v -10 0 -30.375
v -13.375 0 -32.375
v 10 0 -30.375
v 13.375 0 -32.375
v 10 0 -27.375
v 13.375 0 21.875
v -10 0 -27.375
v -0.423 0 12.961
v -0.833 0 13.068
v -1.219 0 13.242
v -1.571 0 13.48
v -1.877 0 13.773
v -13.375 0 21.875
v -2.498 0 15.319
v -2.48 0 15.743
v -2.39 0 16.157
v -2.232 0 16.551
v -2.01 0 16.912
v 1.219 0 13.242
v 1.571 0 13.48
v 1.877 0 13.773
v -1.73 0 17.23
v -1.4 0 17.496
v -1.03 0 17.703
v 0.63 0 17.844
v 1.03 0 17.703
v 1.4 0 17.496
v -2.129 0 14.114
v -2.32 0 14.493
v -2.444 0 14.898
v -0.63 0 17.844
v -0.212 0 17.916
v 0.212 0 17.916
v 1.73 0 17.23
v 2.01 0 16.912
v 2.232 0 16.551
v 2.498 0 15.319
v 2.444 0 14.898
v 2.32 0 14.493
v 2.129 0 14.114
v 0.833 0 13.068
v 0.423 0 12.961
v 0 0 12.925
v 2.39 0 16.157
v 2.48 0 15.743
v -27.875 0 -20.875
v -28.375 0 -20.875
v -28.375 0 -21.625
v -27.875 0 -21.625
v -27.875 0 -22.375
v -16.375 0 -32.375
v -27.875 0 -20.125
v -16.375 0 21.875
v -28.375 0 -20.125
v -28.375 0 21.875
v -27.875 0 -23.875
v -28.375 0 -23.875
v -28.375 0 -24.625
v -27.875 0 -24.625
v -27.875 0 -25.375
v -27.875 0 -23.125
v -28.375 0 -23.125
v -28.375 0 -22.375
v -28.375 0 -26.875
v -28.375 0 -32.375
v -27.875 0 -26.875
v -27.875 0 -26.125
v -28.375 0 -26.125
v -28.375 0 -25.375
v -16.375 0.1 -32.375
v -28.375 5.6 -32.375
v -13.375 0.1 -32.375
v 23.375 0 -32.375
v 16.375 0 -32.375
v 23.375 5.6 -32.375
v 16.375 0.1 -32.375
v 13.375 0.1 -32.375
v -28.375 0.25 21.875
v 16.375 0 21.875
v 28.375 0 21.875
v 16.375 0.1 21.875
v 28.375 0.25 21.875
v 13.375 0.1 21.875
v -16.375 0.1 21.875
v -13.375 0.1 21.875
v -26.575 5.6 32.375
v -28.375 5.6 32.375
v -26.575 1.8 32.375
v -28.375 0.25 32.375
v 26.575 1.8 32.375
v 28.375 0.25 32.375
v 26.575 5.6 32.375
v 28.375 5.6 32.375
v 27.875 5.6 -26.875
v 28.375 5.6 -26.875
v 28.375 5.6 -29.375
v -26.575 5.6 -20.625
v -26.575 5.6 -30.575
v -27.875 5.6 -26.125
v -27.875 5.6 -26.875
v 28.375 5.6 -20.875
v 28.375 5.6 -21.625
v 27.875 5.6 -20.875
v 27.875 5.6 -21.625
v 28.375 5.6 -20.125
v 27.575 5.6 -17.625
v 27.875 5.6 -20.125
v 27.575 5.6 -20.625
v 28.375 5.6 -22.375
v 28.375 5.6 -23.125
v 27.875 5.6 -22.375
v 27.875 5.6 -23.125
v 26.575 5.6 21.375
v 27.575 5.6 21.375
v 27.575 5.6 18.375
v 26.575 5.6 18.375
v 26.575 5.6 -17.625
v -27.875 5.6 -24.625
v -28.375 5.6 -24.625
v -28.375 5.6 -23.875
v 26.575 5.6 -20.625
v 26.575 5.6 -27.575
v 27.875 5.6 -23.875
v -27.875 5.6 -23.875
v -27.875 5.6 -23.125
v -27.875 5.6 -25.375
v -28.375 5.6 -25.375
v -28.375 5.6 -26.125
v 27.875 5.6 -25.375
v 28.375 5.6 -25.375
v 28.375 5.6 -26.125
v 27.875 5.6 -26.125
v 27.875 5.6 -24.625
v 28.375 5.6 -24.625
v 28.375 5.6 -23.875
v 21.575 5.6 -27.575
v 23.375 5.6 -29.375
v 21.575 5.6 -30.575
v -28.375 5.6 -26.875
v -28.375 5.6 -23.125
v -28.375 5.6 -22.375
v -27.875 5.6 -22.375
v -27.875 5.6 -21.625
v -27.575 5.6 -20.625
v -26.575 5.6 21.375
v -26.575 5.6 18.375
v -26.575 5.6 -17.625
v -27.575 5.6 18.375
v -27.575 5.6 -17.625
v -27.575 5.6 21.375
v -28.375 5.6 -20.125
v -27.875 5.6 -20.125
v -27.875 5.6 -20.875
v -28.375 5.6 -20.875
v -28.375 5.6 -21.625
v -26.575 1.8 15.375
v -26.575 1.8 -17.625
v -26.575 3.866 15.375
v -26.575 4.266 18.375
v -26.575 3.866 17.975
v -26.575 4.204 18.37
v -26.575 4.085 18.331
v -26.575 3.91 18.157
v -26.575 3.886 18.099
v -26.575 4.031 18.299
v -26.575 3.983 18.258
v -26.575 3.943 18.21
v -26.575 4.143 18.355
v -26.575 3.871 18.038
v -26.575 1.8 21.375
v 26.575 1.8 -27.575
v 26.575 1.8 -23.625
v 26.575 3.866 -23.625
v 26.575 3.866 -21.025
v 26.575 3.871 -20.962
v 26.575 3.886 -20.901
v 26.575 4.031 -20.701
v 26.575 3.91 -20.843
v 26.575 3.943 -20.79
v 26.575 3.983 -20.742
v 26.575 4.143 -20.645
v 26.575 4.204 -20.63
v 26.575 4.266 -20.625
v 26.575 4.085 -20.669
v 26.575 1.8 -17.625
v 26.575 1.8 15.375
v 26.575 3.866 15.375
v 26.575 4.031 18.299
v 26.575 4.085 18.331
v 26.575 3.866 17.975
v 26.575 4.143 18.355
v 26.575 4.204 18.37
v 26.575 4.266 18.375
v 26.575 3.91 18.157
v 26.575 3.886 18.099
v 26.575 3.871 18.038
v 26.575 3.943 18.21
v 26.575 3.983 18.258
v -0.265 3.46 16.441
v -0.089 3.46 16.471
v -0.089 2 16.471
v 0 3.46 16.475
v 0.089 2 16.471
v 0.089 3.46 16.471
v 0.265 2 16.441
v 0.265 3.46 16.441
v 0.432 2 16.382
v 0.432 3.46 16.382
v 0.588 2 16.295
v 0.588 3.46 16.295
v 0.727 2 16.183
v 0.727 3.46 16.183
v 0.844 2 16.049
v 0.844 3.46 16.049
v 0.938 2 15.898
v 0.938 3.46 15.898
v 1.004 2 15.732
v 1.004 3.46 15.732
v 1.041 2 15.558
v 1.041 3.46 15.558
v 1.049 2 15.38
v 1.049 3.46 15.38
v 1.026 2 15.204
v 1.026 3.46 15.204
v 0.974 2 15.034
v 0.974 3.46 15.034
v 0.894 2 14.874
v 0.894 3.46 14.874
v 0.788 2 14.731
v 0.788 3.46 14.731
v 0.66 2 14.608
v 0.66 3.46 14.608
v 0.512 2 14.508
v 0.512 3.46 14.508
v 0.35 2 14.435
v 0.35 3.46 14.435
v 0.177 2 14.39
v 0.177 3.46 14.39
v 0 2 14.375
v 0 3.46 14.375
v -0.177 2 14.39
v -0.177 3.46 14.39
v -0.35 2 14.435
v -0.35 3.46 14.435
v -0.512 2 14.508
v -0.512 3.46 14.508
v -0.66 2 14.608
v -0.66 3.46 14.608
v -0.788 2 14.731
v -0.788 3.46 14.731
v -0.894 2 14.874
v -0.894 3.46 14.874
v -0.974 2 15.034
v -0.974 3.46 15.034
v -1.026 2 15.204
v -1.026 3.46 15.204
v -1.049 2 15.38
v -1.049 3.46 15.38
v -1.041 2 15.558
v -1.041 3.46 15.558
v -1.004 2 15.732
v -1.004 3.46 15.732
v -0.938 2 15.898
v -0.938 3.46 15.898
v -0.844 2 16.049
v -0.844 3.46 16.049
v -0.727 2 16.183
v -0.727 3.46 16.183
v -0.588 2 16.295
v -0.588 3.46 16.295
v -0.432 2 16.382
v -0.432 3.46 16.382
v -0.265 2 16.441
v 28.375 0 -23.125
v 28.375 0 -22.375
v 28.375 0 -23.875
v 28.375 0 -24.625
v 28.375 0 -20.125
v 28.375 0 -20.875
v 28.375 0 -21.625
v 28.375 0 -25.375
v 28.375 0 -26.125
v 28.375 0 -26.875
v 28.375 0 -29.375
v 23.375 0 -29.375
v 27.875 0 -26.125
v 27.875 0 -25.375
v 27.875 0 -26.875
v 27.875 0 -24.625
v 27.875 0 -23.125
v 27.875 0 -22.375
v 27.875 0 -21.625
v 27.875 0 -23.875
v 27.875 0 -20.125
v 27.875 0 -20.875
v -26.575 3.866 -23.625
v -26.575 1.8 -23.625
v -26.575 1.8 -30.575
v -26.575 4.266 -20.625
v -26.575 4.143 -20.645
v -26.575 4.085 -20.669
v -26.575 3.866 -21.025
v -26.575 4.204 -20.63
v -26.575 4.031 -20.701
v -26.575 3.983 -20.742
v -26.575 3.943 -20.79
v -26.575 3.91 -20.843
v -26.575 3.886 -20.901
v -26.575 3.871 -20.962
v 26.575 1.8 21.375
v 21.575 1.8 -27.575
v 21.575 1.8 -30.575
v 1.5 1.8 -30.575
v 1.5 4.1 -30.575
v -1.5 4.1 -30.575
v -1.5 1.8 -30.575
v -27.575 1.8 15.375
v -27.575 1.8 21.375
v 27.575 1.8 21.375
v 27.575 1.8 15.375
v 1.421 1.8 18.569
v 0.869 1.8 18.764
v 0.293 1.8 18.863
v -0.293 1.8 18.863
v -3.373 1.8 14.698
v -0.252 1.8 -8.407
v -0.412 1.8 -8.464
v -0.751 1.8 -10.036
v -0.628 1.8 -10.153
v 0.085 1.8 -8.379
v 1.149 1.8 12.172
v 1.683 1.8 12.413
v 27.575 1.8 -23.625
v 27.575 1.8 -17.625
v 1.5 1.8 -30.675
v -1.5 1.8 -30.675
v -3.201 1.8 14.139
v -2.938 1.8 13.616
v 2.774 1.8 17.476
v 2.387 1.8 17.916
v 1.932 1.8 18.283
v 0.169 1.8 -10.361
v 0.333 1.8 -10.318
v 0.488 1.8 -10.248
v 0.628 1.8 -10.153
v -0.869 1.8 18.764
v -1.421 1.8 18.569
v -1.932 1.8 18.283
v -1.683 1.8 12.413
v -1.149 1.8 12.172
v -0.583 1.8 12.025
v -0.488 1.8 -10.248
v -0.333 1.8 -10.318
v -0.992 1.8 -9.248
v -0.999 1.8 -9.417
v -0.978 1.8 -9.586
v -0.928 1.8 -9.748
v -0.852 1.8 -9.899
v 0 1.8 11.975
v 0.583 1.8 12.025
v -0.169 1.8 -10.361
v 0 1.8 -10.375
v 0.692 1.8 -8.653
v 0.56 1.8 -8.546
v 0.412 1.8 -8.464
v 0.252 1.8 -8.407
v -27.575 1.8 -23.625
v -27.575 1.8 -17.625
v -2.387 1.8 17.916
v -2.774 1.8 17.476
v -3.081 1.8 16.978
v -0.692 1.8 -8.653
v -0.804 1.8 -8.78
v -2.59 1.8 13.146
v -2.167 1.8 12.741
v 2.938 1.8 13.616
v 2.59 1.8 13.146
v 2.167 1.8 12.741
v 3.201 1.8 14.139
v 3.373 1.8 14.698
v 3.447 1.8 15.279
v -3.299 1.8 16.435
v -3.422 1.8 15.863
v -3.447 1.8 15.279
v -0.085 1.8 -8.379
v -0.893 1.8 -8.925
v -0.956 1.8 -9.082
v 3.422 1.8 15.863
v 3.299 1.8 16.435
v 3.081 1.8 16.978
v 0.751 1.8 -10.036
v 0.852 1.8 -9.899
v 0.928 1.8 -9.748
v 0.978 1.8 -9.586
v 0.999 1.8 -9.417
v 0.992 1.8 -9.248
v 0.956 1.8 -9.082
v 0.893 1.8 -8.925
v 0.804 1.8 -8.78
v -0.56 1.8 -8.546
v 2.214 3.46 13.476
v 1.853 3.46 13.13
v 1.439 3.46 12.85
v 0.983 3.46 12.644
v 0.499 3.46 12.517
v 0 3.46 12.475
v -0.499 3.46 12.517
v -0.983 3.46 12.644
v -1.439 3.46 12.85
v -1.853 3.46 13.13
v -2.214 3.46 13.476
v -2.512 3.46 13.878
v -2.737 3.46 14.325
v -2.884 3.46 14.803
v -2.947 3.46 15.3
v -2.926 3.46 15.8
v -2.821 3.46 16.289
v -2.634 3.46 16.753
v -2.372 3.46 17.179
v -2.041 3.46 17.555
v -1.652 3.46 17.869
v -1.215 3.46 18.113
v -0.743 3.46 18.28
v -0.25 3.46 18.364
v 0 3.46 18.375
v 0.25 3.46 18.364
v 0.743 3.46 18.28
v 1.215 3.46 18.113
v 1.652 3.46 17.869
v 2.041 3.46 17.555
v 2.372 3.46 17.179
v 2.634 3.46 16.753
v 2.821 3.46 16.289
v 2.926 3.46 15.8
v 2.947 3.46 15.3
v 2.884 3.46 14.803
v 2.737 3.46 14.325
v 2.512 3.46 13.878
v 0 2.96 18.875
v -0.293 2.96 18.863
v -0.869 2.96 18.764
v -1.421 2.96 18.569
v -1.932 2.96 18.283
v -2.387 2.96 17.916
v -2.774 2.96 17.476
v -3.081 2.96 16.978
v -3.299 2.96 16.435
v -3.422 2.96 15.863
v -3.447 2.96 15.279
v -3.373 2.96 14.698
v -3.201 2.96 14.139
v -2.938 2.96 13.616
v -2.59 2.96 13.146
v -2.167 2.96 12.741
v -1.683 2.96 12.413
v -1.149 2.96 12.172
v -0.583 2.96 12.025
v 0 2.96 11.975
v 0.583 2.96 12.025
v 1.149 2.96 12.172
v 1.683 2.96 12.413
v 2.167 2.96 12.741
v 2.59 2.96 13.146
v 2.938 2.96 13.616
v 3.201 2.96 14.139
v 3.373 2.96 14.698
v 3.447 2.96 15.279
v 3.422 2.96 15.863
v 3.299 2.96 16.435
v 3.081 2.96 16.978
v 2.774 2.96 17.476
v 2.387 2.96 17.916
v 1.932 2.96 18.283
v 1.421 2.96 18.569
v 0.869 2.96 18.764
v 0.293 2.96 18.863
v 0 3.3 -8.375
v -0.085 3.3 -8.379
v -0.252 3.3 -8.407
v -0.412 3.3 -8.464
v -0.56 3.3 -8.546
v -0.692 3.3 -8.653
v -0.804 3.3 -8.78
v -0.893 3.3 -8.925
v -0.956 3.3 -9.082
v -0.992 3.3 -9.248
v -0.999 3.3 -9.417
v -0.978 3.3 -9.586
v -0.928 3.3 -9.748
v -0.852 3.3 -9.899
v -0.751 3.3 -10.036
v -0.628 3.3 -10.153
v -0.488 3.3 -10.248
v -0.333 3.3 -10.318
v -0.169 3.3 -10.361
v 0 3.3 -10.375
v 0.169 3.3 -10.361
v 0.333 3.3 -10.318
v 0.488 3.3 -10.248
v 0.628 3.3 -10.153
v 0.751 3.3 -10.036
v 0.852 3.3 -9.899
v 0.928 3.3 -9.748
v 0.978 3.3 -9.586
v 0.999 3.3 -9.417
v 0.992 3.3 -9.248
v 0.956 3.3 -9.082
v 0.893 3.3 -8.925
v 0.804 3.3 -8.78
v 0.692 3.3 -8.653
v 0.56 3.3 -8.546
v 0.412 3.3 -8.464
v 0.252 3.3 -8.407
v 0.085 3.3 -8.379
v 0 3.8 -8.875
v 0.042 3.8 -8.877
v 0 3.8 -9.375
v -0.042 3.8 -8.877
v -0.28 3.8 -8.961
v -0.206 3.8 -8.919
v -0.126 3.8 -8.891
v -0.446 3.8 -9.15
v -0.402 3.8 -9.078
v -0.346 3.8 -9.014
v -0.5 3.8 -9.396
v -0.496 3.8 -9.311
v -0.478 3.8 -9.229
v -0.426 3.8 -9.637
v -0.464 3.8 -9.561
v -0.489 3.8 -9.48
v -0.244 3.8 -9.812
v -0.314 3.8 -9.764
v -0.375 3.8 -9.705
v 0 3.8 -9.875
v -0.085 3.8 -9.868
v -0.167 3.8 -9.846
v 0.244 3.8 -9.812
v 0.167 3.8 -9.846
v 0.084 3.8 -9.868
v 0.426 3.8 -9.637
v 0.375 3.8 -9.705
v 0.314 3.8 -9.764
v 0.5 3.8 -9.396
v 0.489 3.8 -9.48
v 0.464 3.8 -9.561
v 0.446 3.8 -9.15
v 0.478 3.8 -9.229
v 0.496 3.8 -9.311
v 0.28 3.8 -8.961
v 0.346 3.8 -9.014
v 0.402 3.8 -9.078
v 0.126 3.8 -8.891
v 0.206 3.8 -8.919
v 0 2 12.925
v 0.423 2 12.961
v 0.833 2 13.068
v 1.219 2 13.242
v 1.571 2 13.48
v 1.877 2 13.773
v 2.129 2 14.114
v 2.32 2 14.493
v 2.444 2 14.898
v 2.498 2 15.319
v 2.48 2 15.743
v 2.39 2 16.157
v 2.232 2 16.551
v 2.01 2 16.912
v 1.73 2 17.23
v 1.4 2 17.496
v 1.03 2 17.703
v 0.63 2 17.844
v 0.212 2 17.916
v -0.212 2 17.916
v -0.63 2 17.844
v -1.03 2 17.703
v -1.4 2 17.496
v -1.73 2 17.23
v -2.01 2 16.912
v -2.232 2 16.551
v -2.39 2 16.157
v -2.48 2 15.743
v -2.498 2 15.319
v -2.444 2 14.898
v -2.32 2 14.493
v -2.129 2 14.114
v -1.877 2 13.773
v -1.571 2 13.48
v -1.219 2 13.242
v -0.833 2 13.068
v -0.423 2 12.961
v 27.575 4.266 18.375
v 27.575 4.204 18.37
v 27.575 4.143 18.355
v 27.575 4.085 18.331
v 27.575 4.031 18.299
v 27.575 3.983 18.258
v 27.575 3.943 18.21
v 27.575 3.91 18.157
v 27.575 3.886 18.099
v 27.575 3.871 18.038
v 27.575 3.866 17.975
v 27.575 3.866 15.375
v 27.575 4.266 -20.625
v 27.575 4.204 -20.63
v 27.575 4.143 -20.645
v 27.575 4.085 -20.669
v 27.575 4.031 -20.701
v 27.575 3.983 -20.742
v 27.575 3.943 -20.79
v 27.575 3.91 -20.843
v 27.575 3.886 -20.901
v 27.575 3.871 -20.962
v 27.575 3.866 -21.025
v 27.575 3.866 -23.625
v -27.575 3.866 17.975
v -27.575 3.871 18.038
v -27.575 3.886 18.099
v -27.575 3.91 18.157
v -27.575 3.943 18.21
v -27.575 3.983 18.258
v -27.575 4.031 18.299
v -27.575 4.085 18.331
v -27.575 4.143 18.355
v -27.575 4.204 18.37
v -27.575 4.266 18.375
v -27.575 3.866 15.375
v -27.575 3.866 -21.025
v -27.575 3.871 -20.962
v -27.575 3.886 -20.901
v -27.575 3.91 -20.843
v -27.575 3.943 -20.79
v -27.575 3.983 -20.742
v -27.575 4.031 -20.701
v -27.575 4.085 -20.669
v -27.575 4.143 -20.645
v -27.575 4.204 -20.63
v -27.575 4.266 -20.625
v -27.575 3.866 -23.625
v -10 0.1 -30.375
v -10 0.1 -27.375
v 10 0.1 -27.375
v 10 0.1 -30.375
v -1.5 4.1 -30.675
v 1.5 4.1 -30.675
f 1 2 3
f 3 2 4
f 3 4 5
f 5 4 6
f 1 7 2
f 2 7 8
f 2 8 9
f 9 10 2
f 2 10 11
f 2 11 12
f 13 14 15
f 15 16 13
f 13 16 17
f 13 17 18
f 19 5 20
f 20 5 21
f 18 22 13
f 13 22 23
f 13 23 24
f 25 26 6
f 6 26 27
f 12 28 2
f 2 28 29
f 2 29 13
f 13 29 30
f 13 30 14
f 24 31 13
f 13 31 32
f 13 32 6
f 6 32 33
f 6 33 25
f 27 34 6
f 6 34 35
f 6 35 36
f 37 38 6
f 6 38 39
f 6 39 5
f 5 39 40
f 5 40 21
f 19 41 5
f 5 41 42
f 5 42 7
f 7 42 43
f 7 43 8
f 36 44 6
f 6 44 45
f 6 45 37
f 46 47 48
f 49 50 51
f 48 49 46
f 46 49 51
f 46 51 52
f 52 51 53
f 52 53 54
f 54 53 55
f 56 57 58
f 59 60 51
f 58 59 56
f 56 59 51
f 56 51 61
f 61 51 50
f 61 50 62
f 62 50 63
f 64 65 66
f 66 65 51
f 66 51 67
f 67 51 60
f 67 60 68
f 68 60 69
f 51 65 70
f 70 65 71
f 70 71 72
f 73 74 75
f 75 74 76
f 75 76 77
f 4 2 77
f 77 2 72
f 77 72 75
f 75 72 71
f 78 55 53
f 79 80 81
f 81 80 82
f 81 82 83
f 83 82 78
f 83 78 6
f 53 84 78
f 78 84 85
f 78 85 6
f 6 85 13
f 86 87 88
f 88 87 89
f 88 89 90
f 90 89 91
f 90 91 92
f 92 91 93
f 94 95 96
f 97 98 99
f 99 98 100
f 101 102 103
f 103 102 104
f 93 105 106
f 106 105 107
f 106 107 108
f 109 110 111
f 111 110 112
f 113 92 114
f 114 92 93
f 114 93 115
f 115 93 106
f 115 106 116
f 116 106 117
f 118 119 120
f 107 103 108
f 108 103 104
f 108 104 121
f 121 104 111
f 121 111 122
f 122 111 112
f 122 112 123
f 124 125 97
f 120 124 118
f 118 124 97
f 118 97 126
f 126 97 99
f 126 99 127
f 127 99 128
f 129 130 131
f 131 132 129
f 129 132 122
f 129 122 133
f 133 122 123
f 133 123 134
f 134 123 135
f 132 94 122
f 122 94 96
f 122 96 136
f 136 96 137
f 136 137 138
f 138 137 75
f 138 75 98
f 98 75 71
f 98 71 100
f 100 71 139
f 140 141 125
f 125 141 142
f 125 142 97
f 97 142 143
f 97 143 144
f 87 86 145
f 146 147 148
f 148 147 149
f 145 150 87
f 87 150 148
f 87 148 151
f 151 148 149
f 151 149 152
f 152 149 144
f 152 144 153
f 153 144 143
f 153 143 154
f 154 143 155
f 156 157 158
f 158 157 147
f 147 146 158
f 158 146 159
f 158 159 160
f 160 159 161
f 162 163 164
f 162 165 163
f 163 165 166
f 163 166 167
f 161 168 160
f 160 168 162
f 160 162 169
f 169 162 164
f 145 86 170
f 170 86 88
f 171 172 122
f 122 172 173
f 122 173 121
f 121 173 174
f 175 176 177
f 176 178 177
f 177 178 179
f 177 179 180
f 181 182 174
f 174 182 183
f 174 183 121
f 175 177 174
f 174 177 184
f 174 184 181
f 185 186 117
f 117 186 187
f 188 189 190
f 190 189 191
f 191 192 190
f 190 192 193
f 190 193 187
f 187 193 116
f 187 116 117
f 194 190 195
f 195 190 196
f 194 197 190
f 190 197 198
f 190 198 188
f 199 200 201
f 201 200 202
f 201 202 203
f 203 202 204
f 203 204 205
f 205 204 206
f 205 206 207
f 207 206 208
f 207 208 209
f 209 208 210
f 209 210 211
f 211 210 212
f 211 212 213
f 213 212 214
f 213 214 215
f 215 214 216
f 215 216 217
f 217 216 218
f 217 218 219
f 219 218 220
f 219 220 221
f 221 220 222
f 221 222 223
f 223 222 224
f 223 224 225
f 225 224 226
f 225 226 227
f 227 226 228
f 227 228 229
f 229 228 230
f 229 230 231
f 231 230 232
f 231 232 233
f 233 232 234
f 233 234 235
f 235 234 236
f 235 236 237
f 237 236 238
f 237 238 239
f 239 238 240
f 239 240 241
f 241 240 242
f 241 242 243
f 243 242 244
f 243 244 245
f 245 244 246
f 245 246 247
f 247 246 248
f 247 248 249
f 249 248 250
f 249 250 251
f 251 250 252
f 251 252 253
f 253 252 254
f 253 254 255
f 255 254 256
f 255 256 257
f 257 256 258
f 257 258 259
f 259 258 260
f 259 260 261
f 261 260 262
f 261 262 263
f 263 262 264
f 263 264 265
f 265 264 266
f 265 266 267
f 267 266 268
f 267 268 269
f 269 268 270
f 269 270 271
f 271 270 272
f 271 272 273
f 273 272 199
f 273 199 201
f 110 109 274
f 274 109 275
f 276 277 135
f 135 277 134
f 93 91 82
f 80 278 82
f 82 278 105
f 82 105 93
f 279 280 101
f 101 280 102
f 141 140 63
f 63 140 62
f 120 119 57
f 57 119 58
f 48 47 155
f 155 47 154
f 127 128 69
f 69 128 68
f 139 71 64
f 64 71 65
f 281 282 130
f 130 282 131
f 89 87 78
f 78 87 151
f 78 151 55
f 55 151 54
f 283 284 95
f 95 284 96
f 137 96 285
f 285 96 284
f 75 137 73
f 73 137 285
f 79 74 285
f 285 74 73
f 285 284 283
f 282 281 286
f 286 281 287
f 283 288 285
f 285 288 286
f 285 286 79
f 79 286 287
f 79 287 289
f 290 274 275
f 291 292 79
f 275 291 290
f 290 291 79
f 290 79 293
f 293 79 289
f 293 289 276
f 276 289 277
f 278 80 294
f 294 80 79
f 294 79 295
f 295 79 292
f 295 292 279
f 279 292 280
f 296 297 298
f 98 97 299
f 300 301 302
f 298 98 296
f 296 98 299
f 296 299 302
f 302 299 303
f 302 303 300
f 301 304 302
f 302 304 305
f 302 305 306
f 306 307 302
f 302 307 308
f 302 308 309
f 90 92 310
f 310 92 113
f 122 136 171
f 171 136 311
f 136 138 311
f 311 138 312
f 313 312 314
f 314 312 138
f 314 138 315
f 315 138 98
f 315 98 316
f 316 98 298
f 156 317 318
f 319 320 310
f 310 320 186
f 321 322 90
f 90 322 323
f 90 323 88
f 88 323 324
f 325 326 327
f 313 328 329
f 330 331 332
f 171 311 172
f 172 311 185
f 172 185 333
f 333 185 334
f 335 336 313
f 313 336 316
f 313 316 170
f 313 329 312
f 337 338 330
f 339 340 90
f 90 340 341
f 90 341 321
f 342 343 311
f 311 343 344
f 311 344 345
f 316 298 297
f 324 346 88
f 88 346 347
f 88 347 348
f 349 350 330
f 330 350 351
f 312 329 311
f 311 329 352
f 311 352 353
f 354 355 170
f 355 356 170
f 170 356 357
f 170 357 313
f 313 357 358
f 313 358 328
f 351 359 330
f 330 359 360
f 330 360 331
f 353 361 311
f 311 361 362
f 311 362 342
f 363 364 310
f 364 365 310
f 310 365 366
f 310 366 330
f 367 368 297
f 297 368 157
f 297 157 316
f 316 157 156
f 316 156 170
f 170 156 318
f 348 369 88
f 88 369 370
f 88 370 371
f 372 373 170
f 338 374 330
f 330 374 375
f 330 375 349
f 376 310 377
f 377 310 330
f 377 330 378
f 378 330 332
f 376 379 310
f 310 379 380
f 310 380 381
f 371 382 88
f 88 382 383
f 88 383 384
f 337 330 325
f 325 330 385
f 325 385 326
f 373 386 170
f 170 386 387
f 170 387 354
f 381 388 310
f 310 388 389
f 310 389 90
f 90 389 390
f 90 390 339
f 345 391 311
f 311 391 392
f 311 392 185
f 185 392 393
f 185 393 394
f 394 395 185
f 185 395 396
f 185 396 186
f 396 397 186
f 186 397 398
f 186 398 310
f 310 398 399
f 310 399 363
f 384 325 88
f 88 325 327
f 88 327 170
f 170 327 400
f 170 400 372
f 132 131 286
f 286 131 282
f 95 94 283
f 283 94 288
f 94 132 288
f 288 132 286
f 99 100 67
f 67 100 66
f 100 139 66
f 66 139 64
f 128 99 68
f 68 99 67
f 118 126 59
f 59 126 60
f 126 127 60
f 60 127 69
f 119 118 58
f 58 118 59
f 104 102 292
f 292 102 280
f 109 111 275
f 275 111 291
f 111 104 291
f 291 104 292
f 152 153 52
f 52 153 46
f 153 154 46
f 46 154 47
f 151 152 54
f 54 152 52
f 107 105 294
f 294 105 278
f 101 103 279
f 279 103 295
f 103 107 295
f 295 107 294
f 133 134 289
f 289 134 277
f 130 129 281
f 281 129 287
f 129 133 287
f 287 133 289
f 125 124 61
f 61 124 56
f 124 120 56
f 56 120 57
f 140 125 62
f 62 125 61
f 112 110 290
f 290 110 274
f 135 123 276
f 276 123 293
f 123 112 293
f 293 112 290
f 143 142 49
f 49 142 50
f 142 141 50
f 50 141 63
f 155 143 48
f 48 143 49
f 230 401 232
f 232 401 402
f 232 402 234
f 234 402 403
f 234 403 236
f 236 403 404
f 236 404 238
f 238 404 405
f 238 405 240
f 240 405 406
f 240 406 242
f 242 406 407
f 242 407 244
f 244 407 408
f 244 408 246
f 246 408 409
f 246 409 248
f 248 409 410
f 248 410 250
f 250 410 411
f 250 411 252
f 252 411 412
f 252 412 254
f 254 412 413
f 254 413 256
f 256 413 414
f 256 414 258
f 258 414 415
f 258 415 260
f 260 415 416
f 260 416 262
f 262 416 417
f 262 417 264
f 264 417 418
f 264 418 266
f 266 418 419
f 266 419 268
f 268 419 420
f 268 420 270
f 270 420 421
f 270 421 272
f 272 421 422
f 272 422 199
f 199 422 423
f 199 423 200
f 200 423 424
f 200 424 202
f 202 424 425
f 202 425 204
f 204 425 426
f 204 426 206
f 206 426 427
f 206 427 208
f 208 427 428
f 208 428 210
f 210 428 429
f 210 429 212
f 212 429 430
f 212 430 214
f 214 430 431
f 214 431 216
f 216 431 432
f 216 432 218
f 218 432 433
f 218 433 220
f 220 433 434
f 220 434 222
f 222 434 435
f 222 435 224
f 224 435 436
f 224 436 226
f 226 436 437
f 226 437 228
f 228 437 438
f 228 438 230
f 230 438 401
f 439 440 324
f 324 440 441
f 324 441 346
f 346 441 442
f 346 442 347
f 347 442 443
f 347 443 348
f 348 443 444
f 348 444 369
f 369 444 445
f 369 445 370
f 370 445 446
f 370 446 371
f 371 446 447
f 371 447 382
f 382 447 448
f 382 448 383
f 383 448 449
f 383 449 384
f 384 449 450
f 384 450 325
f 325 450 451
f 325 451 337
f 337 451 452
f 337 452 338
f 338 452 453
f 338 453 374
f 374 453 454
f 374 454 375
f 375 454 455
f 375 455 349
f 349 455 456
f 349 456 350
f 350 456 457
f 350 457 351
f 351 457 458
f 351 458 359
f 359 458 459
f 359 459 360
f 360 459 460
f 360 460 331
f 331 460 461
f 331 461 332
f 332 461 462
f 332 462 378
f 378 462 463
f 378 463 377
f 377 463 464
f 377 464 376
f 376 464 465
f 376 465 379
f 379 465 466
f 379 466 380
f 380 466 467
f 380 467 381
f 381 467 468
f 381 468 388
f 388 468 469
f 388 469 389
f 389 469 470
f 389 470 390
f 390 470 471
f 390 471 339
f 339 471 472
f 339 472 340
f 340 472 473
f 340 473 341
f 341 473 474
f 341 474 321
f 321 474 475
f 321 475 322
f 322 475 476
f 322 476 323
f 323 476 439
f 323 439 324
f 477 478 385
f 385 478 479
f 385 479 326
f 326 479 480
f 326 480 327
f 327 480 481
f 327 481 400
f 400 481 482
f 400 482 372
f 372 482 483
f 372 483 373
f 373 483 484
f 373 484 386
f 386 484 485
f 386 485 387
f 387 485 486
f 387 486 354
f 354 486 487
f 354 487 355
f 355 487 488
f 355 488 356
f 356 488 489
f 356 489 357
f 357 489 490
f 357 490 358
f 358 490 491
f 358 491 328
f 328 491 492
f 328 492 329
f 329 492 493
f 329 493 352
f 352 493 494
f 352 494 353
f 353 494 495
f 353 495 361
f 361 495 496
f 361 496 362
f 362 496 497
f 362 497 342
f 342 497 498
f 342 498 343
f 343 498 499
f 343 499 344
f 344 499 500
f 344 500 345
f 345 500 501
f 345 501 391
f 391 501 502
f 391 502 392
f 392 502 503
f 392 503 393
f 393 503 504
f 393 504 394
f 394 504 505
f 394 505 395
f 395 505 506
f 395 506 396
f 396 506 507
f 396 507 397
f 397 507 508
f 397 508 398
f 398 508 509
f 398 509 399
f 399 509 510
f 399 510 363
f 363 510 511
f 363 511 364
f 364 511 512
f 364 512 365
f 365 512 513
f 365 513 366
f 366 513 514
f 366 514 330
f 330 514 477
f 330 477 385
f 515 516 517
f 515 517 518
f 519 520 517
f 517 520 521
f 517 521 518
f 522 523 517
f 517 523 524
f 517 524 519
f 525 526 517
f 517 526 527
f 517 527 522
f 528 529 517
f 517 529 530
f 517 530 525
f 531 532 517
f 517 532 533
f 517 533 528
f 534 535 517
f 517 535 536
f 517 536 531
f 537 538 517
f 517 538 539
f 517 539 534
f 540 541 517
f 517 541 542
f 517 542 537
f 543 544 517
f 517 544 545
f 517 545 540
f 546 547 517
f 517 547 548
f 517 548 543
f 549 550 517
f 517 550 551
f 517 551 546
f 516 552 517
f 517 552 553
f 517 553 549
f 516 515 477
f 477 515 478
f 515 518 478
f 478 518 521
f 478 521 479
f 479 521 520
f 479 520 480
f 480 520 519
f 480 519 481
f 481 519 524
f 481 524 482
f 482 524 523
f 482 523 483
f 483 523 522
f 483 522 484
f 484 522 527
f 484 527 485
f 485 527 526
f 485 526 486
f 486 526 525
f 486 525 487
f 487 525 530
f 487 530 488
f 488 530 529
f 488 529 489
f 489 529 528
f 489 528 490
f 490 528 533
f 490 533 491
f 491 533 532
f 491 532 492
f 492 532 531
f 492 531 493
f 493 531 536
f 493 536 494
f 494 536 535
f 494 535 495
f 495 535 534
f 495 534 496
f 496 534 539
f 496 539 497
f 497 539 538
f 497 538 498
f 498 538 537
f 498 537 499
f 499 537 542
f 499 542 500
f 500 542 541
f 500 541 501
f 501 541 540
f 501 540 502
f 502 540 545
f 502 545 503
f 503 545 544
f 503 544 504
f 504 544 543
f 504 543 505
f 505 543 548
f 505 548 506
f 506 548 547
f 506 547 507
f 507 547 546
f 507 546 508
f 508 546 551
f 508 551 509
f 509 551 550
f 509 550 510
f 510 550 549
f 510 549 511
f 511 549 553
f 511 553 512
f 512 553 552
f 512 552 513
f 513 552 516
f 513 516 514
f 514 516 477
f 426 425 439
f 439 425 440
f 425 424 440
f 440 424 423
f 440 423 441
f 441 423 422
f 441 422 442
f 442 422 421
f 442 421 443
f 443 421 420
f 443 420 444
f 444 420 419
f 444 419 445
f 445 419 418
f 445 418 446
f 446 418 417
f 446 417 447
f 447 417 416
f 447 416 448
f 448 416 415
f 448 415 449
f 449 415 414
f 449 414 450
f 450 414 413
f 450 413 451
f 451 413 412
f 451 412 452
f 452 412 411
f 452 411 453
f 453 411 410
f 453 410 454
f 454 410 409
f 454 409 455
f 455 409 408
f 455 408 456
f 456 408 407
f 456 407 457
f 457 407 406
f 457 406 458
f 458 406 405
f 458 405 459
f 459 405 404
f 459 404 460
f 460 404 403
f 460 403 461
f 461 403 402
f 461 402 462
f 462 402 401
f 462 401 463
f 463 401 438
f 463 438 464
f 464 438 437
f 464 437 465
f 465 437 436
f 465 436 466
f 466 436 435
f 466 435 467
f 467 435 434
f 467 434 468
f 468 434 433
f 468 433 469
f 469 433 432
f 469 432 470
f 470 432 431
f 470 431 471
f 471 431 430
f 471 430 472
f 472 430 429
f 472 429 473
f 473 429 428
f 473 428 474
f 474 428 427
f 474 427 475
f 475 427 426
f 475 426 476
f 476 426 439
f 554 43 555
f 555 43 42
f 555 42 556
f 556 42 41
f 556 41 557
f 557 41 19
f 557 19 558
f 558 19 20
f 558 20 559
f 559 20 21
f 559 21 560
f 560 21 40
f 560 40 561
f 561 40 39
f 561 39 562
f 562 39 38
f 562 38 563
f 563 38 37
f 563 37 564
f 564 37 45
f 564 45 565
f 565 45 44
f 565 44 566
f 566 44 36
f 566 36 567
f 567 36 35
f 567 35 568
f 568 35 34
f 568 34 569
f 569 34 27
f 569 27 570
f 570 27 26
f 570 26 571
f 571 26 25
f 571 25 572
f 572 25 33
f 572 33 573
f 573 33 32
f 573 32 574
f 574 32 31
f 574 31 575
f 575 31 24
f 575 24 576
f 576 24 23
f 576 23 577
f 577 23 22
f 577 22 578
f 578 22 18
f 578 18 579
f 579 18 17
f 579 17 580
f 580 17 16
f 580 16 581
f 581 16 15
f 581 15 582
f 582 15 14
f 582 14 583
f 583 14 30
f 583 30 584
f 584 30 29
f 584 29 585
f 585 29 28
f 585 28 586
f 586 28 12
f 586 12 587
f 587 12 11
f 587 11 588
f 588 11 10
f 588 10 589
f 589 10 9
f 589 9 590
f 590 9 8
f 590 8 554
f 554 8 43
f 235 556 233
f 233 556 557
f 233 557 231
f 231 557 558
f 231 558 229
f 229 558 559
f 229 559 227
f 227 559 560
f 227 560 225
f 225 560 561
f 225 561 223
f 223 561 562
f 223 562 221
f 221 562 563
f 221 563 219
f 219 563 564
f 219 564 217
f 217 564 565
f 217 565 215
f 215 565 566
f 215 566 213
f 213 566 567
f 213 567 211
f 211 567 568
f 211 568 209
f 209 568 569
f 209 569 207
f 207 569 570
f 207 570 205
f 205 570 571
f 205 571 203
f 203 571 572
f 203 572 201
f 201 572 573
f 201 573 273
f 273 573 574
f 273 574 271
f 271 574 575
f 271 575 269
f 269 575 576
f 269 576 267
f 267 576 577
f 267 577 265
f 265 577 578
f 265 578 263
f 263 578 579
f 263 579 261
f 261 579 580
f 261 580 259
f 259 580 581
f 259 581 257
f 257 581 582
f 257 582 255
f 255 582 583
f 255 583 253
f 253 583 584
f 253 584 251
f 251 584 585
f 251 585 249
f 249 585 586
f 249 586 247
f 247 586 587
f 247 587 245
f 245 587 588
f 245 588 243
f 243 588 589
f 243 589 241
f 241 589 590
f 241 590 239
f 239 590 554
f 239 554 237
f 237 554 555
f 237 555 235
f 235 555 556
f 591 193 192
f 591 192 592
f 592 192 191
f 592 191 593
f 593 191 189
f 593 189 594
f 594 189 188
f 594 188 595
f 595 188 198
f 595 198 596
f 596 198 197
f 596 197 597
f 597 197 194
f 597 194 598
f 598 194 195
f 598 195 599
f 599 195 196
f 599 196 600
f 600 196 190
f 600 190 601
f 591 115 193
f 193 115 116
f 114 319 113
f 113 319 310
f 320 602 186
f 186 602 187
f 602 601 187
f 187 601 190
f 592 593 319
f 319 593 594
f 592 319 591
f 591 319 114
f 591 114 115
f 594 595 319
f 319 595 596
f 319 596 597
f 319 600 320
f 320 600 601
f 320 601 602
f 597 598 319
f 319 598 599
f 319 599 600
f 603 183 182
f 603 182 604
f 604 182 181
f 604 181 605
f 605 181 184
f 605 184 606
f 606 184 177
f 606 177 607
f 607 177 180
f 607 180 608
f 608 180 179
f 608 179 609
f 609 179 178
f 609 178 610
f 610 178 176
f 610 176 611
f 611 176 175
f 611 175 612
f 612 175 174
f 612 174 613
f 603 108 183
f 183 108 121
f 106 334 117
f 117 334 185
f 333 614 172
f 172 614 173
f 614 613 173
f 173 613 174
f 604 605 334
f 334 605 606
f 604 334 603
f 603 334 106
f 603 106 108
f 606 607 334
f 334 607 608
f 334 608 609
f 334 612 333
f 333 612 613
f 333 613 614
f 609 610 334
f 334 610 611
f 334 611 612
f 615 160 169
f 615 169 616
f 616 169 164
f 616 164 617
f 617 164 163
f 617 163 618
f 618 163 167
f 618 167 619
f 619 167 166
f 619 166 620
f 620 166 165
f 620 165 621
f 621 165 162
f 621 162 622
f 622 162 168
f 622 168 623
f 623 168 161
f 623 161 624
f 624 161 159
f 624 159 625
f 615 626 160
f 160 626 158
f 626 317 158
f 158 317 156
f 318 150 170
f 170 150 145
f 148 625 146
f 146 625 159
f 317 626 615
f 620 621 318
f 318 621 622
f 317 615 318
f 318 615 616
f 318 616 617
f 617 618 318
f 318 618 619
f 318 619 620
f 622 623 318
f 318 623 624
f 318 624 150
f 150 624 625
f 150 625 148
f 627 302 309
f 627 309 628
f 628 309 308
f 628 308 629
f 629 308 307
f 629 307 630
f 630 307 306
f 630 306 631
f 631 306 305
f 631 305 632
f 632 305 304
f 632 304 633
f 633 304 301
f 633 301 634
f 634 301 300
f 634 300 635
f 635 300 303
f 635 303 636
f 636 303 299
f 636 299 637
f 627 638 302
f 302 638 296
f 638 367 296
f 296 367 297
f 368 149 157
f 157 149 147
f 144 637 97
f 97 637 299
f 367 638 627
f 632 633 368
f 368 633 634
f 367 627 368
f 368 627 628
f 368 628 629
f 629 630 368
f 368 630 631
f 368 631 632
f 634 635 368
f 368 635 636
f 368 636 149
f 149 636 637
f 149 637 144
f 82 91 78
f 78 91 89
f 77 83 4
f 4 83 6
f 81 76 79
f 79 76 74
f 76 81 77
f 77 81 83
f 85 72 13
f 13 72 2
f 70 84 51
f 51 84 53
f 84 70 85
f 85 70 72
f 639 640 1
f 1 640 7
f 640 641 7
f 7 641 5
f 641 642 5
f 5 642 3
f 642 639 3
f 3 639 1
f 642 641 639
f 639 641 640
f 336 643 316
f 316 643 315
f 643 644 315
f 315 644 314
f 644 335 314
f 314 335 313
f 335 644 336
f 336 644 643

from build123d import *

# Parameters (mm, degrees)
BOSS_EXTRUDE1_DEPTH  = 5.6
SHELL1_T             = -1.8
CUT_EXTRUDE1_REACH   = 72.916
SKETCH2_W            = 53.15
SKETCH2_H            = 3.8
SKETCH3_W            = 0.5
SKETCH3_H            = 0.75
CUT_EXTRUDE2_DEPTH   = 5.6
LPATTERN1_COUNT      = 5
LPATTERN1_PITCH      = 1.5
SKETCH4_R            = 3.45
SKETCH4_R_2          = 1.05
BOSS_EXTRUDE2_DEPTH  = 1.66
SKETCH5_R            = 1
BOSS_EXTRUDE3_DEPTH  = 2
CHAMFER1_SIZE        = 0.5
SKETCH6_R            = 2.5
CUT_EXTRUDE3_DEPTH   = 2
CUT_EXTRUDE4_DEPTH   = 1
LPATTERN2_COUNT      = 2
LPATTERN2_PITCH      = 39
MIRROR1_COPY_1_DEPTH = 1
SKETCH8_W            = 56.75
SKETCH8_H            = 10.5
CUT_EXTRUDE5_DEPTH   = 0.25
SKETCH9_W            = 3
SKETCH9_H            = 54.25
CUT_EXTRUDE6_DEPTH   = 0.1
SKETCH10_W           = 20
SKETCH10_H           = 3
CUT_EXTRUDE7_DEPTH   = 0.1
SKETCH11_W           = 3
SKETCH11_H           = 2.3
CUT_EXTRUDE8_DEPTH   = 0.1


with BuildPart() as part:
    # Sketch1 → Boss-Extrude1 (new body)
    with BuildSketch(Plane(origin=(0, 0, 0), x_dir=(1, 0, 0), z_dir=(0, 1, 0))):
        Polygon((23.375, 32.375), (-28.375, 32.375), (-28.375, -32.375), (28.375, -32.375), (28.375, 29.375), (23.375, 29.375), align=None)
    extrude(amount=BOSS_EXTRUDE1_DEPTH)

    # Shell1
    shell1_openings = [part.faces().sort_by_distance(p)[0] for p in [
        (-0.10605776, 5.6, 0.126552013),
    ]]
    offset(amount=SHELL1_T, openings=shell1_openings, kind=Kind.INTERSECTION)

    # Sketch2 → Cut-Extrude1 (cut, up to next)
    with BuildSketch(Plane.XY.offset(32.375), mode=Mode.PRIVATE) as cut_extrude1_sk1:
        with Locations((0, 3.7)):
            Rectangle(SKETCH2_W, SKETCH2_H)
    cut_extrude1_tool1 = extrude(cut_extrude1_sk1.sketch, amount=-CUT_EXTRUDE1_REACH, mode=Mode.PRIVATE) & part.part
    add(cut_extrude1_tool1.solids().sort_by_distance((0, 3.7, 32.375))[0], mode=Mode.SUBTRACT)

    # Sketch3 → Cut-Extrude2 (cut)
    with BuildSketch(Plane.XZ):
        with Locations((-28.125, -26.5)):
            Rectangle(SKETCH3_W, SKETCH3_H)
        with Locations((28.125, -26.5)):
            Rectangle(SKETCH3_W, SKETCH3_H)
    cut_extrude2 = extrude(amount=-CUT_EXTRUDE2_DEPTH, mode=Mode.SUBTRACT)

    # LPattern1: Cut-Extrude2 ×5
    with Locations(*[(0, 0, i * LPATTERN1_PITCH) for i in range(1, LPATTERN1_COUNT)]):
        add(cut_extrude2, mode=Mode.SUBTRACT)

    # Sketch4 → Boss-Extrude2 (add)
    with BuildSketch(Plane(origin=(0, 1.8, 0), x_dir=(1, 0, 0), z_dir=(0, 1, 0))):
        with Locations(Location((0, -15.425, 0), (0, 0, 90))):
            Circle(SKETCH4_R)
        with Locations(Location((0, -15.425, 0), (0, 0, 90))):
            Circle(SKETCH4_R_2, mode=Mode.SUBTRACT)
    extrude(amount=BOSS_EXTRUDE2_DEPTH)

    # Sketch5 → Boss-Extrude3 (add)
    with BuildSketch(Plane(origin=(0, 1.8, 0), x_dir=(1, 0, 0), z_dir=(0, 1, 0))):
        with Locations(Location((0, 9.375, 0), (0, 0, 90))):
            Circle(SKETCH5_R)
    extrude(amount=BOSS_EXTRUDE3_DEPTH)

    # Chamfer1
    chamfer1_edges = [part.edges().sort_by_distance(p)[0] for p in [
        (0, 3.46, 18.875),
        (0, 3.8, -8.375),
    ]]
    chamfer(chamfer1_edges, length=CHAMFER1_SIZE)

    # Sketch6 → Cut-Extrude3 (cut)
    with BuildSketch(Plane.XZ):
        with Locations(Location((0, 15.425, 0), (0, 0, 270))):
            Circle(SKETCH6_R)
    extrude(amount=-CUT_EXTRUDE3_DEPTH, mode=Mode.SUBTRACT)

    # Sketch7 → Cut-Extrude4 (cut)
    with BuildSketch(Plane.ZY.offset(-26.575)):
        with BuildLine():
            Line((15.375, 3.866149972), (15.375, 1.8))
            Line((15.375, 1.8), (21.375, 1.8))
            Line((21.375, 1.8), (21.375, 5.6))
            Line((21.375, 5.6), (18.375, 5.6))
            Line((18.375, 5.6), (18.375, 4.266149972))
            ThreePointArc((18.375, 4.266149972), (18.257842712, 3.98330726), (17.975, 3.866149972))
            Line((17.975, 3.866149972), (15.375, 3.866149972))
        make_face()
    cut_extrude4 = extrude(amount=-CUT_EXTRUDE4_DEPTH, mode=Mode.SUBTRACT)

    # LPattern2: Cut-Extrude4 ×2
    with Locations(*[(0, 0, -i * LPATTERN2_PITCH) for i in range(1, LPATTERN2_COUNT)]):
        add(cut_extrude4, mode=Mode.SUBTRACT)

    # Mirror1: Cut-Extrude4 across plane
    add(cut_extrude4.mirror(Plane(origin=(0, 0, 0), x_dir=(0, 0, 1), z_dir=(1, 0, 0))), mode=Mode.SUBTRACT)

    # Mirror1 copy 1 sketch → Mirror1 copy 1 (cut)
    with BuildSketch(Plane(origin=(-26.575, 0, -39), x_dir=(0, 0, 1), z_dir=(1, 0, 0))):
        with BuildLine():
            Line((15.375, -3.866149972), (15.375, -1.8))
            Line((15.375, -1.8), (21.375, -1.8))
            Line((21.375, -1.8), (21.375, -5.6))
            Line((21.375, -5.6), (18.375, -5.6))
            Line((18.375, -5.6), (18.375, -4.266149972))
            ThreePointArc((18.375, -4.266149972), (18.257842712, -3.98330726), (17.975, -3.866149972))
            Line((17.975, -3.866149972), (15.375, -3.866149972))
        make_face()
    extrude(amount=-MIRROR1_COPY_1_DEPTH, mode=Mode.SUBTRACT)

    # Sketch8 → Cut-Extrude5 (cut)
    with BuildSketch(Plane.XZ):
        with Locations((0, 27.125)):
            Rectangle(SKETCH8_W, SKETCH8_H)
    extrude(amount=-CUT_EXTRUDE5_DEPTH, mode=Mode.SUBTRACT)

    # Sketch9 → Cut-Extrude6 (cut)
    with BuildSketch(Plane.XZ):
        with Locations((14.875, -5.25)):
            Rectangle(SKETCH9_W, SKETCH9_H)
    cut_extrude6 = extrude(amount=-CUT_EXTRUDE6_DEPTH, mode=Mode.SUBTRACT)

    # Mirror2: Cut-Extrude6 across plane
    add(cut_extrude6.mirror(Plane(origin=(0, 0, 0), x_dir=(0, 0, 1), z_dir=(1, 0, 0))), mode=Mode.SUBTRACT)

    # Sketch10 → Cut-Extrude7 (cut)
    with BuildSketch(Plane.XZ):
        with Locations((0, -28.875)):
            Rectangle(SKETCH10_W, SKETCH10_H)
    extrude(amount=-CUT_EXTRUDE7_DEPTH, mode=Mode.SUBTRACT)

    # Sketch11 → Cut-Extrude8 (cut)
    with BuildSketch(Plane.XY.offset(-30.575)):
        with Locations((0, 2.95)):
            Rectangle(SKETCH11_W, SKETCH11_H)
    extrude(amount=-CUT_EXTRUDE8_DEPTH, mode=Mode.SUBTRACT)


solid = part.part
